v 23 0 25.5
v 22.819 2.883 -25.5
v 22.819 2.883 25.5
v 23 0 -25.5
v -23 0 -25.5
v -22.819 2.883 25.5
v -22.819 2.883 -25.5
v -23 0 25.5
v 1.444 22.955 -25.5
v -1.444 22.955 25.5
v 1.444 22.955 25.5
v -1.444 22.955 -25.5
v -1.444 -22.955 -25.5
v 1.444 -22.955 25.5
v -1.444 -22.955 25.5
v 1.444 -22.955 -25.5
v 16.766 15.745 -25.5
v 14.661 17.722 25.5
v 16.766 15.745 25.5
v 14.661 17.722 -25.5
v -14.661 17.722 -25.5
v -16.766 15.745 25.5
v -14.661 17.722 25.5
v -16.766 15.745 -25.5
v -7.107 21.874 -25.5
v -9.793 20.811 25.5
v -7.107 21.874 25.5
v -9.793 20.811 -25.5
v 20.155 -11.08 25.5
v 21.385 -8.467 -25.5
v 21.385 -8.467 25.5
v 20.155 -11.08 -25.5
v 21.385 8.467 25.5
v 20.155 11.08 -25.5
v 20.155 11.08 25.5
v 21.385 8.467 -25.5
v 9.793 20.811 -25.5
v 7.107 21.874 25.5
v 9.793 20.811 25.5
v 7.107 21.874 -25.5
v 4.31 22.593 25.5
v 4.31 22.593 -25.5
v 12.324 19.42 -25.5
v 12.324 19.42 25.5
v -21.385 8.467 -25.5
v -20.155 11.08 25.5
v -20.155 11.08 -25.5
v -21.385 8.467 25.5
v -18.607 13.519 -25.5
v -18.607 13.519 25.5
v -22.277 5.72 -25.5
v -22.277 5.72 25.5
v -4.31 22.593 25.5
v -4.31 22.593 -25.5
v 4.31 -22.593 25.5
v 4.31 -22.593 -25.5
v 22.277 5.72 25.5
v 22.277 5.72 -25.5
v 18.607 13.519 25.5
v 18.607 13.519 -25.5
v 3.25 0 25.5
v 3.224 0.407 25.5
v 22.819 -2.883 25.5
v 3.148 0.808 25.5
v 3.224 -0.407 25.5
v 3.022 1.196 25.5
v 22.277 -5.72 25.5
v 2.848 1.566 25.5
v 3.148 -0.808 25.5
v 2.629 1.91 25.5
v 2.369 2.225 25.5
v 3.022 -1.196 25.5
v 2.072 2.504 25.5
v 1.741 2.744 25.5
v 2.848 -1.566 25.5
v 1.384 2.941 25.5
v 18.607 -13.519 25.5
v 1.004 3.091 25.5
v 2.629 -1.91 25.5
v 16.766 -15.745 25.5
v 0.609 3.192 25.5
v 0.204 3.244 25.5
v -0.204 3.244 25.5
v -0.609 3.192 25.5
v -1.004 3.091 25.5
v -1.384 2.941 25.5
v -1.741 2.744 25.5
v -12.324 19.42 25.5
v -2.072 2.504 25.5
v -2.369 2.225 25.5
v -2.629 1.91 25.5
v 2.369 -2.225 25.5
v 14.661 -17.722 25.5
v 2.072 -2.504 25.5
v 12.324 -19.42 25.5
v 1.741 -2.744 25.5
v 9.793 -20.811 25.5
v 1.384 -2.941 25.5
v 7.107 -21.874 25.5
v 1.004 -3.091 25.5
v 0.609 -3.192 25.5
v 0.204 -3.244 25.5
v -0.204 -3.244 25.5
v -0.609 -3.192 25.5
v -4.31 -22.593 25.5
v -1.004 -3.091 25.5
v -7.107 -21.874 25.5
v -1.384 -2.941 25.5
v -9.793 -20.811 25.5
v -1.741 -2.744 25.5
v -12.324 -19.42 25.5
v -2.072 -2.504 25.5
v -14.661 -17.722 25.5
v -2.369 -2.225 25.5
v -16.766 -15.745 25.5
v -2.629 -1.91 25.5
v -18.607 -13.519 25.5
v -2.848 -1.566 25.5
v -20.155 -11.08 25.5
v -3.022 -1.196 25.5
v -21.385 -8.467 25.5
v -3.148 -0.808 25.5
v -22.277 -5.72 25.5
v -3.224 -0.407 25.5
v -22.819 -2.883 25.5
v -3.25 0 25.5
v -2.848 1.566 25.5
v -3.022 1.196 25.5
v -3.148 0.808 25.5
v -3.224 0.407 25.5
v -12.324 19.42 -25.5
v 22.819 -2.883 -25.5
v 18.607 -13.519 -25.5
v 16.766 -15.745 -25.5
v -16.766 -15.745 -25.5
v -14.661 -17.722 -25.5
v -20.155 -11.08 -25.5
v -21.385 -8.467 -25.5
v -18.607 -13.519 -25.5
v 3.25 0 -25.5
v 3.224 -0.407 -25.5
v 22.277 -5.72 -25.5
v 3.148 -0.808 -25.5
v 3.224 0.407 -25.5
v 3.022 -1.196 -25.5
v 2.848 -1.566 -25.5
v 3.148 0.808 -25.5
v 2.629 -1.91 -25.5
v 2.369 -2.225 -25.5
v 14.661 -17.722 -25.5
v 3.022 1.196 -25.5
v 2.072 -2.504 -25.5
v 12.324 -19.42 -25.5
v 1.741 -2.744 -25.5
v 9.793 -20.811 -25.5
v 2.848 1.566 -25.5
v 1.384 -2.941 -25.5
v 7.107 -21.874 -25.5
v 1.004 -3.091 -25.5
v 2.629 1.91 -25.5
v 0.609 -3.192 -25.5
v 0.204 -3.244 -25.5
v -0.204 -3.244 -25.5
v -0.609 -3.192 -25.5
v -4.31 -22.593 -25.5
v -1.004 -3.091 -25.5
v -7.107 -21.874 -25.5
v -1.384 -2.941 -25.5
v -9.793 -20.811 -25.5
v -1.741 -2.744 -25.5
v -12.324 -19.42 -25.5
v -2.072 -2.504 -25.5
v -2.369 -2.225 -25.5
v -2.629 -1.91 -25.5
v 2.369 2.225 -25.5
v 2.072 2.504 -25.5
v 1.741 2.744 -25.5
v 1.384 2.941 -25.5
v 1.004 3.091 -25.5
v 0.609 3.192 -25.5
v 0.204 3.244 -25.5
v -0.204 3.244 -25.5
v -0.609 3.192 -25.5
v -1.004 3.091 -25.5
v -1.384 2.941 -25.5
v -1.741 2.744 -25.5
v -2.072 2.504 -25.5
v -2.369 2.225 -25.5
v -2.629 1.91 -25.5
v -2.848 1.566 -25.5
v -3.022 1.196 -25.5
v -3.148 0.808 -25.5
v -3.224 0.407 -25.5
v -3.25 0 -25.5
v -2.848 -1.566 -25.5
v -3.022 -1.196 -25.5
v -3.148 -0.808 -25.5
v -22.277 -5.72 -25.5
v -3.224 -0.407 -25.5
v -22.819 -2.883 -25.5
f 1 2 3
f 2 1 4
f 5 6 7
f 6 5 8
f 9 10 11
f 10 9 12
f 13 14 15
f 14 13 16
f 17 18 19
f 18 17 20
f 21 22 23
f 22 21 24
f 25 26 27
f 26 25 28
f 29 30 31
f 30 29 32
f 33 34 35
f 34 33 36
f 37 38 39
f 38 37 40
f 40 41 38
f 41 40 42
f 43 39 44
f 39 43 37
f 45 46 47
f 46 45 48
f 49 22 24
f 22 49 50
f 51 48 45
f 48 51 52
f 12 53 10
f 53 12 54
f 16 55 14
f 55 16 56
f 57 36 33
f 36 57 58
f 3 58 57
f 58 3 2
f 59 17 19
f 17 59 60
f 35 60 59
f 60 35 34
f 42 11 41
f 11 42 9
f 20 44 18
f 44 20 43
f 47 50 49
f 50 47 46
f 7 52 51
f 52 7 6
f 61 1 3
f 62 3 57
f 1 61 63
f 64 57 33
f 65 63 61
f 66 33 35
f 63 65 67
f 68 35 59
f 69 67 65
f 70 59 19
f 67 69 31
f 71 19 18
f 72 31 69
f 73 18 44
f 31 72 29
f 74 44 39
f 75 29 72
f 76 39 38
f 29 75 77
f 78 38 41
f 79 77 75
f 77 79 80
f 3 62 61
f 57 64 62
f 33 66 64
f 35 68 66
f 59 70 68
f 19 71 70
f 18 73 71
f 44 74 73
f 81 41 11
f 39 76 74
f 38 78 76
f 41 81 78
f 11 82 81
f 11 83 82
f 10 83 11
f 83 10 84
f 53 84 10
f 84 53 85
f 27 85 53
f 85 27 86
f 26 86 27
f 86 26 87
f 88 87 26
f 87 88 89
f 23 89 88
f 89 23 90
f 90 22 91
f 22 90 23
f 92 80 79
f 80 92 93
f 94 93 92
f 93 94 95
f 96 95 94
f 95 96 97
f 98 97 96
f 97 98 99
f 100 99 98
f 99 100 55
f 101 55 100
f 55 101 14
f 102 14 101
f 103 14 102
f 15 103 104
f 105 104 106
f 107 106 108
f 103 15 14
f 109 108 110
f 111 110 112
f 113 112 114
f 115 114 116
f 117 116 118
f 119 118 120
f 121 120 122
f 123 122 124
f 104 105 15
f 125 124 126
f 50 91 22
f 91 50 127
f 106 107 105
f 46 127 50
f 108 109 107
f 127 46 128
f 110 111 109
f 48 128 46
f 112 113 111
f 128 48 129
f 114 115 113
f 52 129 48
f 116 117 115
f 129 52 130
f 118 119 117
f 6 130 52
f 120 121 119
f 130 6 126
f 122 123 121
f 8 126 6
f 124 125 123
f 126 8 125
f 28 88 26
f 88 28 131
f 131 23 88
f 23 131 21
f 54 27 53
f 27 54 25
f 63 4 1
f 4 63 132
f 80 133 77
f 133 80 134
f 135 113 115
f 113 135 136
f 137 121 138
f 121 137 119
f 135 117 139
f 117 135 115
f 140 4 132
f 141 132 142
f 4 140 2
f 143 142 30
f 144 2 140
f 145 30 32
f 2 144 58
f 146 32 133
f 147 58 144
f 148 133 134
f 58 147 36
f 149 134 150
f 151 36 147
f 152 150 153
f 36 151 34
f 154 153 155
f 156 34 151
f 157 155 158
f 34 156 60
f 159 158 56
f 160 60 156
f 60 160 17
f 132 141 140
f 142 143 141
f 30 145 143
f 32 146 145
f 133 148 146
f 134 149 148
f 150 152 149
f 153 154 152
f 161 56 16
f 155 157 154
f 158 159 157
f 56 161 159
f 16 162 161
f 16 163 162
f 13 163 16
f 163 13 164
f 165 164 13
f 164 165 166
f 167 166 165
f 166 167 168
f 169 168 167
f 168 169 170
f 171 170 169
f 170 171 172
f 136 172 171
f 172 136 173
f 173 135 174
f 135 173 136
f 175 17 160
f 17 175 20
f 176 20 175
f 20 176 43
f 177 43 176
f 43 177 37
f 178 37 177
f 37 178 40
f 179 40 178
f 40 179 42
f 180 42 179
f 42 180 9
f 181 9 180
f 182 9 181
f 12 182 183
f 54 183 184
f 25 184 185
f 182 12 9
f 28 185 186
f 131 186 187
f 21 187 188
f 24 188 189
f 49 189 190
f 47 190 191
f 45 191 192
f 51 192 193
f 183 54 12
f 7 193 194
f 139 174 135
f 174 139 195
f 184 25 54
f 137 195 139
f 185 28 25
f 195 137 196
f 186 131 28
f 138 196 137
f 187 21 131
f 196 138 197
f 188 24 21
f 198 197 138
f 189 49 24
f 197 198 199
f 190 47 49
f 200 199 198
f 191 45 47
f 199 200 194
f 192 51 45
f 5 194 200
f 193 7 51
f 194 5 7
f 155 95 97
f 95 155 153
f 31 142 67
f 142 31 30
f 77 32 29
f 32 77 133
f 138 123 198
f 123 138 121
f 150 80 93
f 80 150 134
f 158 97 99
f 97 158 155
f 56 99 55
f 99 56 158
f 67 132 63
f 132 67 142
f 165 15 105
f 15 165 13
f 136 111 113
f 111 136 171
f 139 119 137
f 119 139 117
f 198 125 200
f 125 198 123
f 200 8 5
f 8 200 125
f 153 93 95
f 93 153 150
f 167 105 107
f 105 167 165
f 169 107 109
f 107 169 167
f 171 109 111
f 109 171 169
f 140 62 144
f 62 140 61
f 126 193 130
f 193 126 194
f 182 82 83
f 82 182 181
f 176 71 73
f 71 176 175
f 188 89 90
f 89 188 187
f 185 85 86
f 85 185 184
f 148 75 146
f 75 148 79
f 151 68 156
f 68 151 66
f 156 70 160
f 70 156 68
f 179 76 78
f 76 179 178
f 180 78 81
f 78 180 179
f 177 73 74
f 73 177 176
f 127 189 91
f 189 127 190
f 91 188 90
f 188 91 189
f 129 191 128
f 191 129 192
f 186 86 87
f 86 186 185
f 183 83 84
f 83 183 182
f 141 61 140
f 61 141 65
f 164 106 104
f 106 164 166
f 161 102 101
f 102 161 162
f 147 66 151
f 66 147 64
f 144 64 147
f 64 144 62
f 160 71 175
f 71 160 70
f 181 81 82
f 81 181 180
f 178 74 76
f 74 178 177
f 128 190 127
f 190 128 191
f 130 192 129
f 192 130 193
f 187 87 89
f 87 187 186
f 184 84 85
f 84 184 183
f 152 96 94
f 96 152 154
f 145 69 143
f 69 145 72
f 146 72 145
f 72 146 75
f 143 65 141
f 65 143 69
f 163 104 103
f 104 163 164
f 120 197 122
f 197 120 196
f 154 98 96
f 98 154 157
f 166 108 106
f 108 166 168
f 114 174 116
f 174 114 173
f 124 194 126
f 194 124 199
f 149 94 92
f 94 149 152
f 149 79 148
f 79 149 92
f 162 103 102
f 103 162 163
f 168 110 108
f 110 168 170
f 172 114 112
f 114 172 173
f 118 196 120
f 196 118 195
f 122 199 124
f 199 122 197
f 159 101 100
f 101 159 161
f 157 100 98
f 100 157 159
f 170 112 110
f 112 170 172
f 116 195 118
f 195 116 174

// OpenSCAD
$fn = 50;


difference() {
	union() {
		translate(v = [0, 0, -25.5000000000]) {
			cylinder(h = 51, r = 23.0000000000);
		}
	}
	union() {
		translate(v = [0, 0, -100.0000000000]) {
			cylinder(h = 200, r = 3.2500000000);
		}
	}
}
